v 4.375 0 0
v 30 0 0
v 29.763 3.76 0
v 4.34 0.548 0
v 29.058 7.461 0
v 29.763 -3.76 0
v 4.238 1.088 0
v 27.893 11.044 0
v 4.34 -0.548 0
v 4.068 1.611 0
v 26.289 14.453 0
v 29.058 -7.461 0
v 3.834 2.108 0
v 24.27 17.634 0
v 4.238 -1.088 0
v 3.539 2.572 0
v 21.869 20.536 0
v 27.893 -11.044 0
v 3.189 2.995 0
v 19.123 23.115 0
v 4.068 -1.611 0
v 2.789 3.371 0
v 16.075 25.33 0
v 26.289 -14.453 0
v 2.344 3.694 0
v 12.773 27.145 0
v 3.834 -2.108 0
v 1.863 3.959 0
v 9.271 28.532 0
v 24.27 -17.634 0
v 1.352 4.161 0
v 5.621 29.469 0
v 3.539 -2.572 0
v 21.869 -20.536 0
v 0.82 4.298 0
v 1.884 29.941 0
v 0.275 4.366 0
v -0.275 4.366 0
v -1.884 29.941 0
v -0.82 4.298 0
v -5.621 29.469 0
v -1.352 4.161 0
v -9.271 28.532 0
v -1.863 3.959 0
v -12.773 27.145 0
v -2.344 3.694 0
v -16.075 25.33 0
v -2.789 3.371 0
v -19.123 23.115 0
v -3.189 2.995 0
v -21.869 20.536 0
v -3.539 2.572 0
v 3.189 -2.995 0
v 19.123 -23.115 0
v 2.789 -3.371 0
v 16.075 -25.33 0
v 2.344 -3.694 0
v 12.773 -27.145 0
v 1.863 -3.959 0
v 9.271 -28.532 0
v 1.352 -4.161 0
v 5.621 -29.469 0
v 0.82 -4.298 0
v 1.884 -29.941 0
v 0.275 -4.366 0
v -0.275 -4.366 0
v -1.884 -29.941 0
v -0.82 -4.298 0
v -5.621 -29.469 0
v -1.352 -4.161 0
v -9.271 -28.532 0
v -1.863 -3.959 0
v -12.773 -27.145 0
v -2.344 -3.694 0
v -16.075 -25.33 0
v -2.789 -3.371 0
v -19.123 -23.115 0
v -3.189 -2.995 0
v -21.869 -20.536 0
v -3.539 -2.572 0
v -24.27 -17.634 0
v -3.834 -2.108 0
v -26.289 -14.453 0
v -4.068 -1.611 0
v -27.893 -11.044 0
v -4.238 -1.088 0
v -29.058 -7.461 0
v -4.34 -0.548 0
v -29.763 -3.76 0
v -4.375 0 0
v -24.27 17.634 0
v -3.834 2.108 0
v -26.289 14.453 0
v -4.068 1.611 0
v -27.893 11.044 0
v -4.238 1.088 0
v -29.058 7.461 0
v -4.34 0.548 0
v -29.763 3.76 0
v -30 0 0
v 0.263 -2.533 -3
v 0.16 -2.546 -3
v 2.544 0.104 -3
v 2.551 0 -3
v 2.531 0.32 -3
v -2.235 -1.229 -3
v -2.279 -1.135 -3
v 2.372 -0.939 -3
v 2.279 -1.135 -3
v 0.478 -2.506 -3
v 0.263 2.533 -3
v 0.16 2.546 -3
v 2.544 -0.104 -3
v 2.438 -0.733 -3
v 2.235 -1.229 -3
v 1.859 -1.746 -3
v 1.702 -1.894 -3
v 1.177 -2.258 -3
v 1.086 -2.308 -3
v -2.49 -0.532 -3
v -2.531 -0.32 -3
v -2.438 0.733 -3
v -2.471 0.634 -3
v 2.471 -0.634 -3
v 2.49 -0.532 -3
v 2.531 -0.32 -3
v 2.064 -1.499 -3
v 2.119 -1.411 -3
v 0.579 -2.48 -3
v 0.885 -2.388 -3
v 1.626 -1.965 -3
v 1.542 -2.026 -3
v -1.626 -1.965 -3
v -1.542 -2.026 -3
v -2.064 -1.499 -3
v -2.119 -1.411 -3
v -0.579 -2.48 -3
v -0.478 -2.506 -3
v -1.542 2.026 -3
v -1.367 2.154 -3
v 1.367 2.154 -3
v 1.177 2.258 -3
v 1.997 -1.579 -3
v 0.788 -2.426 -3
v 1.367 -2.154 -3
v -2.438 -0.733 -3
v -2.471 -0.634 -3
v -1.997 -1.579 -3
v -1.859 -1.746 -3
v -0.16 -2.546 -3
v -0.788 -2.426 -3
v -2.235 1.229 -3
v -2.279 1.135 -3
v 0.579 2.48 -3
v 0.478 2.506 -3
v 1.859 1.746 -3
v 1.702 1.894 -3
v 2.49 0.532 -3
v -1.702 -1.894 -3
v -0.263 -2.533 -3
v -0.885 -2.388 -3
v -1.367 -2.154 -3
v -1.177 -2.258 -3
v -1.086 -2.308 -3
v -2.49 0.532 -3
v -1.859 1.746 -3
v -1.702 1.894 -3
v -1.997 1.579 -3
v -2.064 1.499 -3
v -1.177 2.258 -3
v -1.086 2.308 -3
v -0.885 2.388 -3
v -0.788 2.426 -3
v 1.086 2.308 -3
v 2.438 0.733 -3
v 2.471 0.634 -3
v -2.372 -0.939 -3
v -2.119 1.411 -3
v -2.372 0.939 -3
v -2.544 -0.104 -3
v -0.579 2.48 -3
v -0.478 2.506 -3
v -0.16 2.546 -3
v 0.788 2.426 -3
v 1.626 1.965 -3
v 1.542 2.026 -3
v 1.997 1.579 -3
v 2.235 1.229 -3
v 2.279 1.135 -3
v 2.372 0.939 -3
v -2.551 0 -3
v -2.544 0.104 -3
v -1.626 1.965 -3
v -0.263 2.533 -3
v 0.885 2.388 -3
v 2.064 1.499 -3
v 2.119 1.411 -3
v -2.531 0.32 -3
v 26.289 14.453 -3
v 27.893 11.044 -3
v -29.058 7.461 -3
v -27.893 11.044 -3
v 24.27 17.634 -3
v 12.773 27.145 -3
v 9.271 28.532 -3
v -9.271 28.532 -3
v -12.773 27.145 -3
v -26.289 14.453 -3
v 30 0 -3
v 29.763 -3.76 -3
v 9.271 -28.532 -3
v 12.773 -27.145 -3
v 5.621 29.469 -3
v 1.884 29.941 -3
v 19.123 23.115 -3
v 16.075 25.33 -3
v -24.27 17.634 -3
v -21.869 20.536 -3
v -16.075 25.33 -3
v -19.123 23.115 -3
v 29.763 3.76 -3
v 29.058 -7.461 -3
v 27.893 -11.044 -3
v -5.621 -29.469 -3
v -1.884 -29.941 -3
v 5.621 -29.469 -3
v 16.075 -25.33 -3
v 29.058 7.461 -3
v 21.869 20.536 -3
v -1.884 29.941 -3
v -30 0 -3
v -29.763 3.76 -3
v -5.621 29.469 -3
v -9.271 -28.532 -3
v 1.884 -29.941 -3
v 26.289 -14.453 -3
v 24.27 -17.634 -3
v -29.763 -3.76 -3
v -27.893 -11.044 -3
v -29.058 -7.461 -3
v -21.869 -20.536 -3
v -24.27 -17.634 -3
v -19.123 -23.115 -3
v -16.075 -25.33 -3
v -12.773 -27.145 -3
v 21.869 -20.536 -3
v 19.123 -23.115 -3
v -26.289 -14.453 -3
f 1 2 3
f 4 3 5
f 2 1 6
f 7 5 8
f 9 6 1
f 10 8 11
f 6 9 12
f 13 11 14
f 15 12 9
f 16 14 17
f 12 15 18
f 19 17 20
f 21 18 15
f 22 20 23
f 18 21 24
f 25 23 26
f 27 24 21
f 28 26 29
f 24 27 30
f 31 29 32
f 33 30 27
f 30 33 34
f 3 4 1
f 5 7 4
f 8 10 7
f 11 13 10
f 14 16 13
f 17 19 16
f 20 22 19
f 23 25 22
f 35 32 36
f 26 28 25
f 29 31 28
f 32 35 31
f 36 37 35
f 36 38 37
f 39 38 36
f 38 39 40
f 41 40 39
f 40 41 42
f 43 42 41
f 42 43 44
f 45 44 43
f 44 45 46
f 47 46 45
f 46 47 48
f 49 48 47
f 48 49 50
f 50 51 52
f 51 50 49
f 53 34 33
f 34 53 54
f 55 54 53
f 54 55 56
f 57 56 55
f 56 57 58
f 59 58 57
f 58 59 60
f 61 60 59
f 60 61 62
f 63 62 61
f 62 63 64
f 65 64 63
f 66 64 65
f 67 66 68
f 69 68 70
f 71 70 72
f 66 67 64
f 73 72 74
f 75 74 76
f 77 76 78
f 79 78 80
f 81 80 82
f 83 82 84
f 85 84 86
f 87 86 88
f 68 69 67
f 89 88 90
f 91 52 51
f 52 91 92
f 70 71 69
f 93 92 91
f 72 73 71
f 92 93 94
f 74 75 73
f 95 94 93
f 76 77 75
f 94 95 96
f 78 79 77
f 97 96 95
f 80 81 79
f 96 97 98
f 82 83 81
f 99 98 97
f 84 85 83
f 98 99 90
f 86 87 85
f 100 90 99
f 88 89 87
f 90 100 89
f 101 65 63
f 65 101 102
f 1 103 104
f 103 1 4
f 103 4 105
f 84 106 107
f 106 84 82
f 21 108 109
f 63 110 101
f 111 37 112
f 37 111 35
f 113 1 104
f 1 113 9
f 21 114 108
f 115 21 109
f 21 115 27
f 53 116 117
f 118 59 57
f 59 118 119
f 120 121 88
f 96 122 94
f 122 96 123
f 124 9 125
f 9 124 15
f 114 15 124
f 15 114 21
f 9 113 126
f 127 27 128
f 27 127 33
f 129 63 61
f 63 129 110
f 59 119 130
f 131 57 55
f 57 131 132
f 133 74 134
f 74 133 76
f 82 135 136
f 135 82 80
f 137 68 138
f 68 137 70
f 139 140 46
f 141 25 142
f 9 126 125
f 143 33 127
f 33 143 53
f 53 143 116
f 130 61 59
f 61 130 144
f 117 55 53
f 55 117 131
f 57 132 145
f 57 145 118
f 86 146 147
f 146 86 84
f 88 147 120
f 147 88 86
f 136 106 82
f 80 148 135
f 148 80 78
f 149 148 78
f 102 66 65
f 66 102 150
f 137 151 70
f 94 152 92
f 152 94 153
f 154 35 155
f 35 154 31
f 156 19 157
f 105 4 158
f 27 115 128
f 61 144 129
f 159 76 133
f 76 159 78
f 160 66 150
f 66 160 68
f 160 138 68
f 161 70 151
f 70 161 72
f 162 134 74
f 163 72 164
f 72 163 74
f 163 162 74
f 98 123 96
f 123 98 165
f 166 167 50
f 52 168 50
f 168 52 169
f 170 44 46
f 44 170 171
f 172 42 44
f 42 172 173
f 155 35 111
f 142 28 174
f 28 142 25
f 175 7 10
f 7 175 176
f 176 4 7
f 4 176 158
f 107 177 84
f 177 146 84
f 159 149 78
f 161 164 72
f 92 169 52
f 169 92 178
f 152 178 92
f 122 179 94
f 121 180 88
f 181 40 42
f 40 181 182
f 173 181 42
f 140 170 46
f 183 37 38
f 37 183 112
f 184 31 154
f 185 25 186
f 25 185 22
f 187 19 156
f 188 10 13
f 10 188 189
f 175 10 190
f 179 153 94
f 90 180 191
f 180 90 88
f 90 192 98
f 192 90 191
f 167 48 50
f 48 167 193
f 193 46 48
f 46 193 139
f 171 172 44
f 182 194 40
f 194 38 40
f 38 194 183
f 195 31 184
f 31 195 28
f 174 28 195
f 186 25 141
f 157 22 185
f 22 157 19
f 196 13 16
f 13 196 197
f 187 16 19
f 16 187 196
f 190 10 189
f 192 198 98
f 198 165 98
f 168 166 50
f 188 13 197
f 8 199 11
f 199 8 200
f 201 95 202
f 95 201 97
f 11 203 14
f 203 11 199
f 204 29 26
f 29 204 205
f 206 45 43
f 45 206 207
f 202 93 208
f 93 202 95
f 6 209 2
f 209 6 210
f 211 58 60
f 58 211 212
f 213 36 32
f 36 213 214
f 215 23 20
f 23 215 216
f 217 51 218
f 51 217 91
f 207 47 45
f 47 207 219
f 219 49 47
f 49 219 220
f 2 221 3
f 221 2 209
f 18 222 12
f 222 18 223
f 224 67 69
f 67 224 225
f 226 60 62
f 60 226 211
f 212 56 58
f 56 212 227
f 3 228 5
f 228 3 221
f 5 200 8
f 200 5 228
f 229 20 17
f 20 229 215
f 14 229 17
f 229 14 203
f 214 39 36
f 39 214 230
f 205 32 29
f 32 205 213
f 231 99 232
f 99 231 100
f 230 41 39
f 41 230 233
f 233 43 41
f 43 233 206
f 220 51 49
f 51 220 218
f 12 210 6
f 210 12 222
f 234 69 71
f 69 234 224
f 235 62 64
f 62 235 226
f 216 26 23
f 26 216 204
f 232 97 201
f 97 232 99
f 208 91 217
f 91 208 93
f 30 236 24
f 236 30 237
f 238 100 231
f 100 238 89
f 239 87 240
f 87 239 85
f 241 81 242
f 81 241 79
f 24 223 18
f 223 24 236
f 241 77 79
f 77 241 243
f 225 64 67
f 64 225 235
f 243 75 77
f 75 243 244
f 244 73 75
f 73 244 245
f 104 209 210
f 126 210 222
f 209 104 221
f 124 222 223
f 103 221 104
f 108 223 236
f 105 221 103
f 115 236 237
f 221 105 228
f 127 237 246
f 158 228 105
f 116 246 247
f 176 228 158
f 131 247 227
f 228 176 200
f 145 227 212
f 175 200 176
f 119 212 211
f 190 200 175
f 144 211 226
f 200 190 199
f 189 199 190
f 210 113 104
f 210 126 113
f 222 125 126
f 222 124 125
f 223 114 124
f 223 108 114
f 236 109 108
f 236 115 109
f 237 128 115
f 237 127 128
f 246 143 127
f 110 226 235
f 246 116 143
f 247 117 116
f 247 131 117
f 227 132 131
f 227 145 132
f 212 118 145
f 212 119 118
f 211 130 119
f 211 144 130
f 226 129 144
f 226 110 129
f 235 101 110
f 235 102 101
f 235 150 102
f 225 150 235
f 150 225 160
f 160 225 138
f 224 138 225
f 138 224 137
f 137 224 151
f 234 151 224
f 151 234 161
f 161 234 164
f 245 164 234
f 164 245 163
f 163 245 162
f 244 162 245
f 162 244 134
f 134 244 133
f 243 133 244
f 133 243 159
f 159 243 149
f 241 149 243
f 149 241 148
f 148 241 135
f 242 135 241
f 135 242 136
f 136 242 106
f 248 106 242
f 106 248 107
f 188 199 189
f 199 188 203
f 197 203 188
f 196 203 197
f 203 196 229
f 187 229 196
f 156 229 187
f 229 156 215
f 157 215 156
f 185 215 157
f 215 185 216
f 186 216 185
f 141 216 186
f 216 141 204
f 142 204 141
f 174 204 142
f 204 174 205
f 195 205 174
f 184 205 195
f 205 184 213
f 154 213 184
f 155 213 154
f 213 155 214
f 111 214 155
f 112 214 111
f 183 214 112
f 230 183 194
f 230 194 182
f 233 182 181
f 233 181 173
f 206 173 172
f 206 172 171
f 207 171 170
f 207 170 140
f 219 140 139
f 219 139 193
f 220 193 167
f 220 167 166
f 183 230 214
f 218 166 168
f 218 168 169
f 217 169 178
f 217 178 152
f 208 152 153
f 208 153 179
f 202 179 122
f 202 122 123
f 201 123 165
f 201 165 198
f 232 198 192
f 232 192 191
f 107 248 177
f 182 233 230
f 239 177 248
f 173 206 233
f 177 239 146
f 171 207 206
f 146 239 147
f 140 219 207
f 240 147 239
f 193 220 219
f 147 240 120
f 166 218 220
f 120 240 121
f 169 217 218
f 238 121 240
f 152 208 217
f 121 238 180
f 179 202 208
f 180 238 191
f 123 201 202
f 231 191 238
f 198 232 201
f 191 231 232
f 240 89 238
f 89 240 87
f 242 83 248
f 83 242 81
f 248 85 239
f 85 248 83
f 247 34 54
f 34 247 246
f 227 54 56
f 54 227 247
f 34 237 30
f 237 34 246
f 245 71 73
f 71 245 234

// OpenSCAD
$fn = 50;


difference() {
	union() {
		translate(v = [0, 0, -3.0000000000]) {
			cylinder(h = 3, r = 30.0000000000);
		}
	}
	union() {
		translate(v = [0, 0, 0]) {
			rotate(a = [0, 0, 0]) {
				difference() {
					union() {
						translate(v = [0, 0, -6.0000000000]) {
							cylinder(h = 6, r = 2.0000000000);
						}
						translate(v = [0, 0, -3.7000000000]) {
							cylinder(h = 3.7000000000, r1 = 2.1250000000, r2 = 4.3750000000);
						}
						translate(v = [0, 0, -6.0000000000]) {
							cylinder(h = 6, r = 2.1250000000);
						}
						translate(v = [0, 0, -6.0000000000]) {
							cylinder(h = 6, r = 2.0000000000);
						}
					}
					union();
				}
			}
		}
	}
}
